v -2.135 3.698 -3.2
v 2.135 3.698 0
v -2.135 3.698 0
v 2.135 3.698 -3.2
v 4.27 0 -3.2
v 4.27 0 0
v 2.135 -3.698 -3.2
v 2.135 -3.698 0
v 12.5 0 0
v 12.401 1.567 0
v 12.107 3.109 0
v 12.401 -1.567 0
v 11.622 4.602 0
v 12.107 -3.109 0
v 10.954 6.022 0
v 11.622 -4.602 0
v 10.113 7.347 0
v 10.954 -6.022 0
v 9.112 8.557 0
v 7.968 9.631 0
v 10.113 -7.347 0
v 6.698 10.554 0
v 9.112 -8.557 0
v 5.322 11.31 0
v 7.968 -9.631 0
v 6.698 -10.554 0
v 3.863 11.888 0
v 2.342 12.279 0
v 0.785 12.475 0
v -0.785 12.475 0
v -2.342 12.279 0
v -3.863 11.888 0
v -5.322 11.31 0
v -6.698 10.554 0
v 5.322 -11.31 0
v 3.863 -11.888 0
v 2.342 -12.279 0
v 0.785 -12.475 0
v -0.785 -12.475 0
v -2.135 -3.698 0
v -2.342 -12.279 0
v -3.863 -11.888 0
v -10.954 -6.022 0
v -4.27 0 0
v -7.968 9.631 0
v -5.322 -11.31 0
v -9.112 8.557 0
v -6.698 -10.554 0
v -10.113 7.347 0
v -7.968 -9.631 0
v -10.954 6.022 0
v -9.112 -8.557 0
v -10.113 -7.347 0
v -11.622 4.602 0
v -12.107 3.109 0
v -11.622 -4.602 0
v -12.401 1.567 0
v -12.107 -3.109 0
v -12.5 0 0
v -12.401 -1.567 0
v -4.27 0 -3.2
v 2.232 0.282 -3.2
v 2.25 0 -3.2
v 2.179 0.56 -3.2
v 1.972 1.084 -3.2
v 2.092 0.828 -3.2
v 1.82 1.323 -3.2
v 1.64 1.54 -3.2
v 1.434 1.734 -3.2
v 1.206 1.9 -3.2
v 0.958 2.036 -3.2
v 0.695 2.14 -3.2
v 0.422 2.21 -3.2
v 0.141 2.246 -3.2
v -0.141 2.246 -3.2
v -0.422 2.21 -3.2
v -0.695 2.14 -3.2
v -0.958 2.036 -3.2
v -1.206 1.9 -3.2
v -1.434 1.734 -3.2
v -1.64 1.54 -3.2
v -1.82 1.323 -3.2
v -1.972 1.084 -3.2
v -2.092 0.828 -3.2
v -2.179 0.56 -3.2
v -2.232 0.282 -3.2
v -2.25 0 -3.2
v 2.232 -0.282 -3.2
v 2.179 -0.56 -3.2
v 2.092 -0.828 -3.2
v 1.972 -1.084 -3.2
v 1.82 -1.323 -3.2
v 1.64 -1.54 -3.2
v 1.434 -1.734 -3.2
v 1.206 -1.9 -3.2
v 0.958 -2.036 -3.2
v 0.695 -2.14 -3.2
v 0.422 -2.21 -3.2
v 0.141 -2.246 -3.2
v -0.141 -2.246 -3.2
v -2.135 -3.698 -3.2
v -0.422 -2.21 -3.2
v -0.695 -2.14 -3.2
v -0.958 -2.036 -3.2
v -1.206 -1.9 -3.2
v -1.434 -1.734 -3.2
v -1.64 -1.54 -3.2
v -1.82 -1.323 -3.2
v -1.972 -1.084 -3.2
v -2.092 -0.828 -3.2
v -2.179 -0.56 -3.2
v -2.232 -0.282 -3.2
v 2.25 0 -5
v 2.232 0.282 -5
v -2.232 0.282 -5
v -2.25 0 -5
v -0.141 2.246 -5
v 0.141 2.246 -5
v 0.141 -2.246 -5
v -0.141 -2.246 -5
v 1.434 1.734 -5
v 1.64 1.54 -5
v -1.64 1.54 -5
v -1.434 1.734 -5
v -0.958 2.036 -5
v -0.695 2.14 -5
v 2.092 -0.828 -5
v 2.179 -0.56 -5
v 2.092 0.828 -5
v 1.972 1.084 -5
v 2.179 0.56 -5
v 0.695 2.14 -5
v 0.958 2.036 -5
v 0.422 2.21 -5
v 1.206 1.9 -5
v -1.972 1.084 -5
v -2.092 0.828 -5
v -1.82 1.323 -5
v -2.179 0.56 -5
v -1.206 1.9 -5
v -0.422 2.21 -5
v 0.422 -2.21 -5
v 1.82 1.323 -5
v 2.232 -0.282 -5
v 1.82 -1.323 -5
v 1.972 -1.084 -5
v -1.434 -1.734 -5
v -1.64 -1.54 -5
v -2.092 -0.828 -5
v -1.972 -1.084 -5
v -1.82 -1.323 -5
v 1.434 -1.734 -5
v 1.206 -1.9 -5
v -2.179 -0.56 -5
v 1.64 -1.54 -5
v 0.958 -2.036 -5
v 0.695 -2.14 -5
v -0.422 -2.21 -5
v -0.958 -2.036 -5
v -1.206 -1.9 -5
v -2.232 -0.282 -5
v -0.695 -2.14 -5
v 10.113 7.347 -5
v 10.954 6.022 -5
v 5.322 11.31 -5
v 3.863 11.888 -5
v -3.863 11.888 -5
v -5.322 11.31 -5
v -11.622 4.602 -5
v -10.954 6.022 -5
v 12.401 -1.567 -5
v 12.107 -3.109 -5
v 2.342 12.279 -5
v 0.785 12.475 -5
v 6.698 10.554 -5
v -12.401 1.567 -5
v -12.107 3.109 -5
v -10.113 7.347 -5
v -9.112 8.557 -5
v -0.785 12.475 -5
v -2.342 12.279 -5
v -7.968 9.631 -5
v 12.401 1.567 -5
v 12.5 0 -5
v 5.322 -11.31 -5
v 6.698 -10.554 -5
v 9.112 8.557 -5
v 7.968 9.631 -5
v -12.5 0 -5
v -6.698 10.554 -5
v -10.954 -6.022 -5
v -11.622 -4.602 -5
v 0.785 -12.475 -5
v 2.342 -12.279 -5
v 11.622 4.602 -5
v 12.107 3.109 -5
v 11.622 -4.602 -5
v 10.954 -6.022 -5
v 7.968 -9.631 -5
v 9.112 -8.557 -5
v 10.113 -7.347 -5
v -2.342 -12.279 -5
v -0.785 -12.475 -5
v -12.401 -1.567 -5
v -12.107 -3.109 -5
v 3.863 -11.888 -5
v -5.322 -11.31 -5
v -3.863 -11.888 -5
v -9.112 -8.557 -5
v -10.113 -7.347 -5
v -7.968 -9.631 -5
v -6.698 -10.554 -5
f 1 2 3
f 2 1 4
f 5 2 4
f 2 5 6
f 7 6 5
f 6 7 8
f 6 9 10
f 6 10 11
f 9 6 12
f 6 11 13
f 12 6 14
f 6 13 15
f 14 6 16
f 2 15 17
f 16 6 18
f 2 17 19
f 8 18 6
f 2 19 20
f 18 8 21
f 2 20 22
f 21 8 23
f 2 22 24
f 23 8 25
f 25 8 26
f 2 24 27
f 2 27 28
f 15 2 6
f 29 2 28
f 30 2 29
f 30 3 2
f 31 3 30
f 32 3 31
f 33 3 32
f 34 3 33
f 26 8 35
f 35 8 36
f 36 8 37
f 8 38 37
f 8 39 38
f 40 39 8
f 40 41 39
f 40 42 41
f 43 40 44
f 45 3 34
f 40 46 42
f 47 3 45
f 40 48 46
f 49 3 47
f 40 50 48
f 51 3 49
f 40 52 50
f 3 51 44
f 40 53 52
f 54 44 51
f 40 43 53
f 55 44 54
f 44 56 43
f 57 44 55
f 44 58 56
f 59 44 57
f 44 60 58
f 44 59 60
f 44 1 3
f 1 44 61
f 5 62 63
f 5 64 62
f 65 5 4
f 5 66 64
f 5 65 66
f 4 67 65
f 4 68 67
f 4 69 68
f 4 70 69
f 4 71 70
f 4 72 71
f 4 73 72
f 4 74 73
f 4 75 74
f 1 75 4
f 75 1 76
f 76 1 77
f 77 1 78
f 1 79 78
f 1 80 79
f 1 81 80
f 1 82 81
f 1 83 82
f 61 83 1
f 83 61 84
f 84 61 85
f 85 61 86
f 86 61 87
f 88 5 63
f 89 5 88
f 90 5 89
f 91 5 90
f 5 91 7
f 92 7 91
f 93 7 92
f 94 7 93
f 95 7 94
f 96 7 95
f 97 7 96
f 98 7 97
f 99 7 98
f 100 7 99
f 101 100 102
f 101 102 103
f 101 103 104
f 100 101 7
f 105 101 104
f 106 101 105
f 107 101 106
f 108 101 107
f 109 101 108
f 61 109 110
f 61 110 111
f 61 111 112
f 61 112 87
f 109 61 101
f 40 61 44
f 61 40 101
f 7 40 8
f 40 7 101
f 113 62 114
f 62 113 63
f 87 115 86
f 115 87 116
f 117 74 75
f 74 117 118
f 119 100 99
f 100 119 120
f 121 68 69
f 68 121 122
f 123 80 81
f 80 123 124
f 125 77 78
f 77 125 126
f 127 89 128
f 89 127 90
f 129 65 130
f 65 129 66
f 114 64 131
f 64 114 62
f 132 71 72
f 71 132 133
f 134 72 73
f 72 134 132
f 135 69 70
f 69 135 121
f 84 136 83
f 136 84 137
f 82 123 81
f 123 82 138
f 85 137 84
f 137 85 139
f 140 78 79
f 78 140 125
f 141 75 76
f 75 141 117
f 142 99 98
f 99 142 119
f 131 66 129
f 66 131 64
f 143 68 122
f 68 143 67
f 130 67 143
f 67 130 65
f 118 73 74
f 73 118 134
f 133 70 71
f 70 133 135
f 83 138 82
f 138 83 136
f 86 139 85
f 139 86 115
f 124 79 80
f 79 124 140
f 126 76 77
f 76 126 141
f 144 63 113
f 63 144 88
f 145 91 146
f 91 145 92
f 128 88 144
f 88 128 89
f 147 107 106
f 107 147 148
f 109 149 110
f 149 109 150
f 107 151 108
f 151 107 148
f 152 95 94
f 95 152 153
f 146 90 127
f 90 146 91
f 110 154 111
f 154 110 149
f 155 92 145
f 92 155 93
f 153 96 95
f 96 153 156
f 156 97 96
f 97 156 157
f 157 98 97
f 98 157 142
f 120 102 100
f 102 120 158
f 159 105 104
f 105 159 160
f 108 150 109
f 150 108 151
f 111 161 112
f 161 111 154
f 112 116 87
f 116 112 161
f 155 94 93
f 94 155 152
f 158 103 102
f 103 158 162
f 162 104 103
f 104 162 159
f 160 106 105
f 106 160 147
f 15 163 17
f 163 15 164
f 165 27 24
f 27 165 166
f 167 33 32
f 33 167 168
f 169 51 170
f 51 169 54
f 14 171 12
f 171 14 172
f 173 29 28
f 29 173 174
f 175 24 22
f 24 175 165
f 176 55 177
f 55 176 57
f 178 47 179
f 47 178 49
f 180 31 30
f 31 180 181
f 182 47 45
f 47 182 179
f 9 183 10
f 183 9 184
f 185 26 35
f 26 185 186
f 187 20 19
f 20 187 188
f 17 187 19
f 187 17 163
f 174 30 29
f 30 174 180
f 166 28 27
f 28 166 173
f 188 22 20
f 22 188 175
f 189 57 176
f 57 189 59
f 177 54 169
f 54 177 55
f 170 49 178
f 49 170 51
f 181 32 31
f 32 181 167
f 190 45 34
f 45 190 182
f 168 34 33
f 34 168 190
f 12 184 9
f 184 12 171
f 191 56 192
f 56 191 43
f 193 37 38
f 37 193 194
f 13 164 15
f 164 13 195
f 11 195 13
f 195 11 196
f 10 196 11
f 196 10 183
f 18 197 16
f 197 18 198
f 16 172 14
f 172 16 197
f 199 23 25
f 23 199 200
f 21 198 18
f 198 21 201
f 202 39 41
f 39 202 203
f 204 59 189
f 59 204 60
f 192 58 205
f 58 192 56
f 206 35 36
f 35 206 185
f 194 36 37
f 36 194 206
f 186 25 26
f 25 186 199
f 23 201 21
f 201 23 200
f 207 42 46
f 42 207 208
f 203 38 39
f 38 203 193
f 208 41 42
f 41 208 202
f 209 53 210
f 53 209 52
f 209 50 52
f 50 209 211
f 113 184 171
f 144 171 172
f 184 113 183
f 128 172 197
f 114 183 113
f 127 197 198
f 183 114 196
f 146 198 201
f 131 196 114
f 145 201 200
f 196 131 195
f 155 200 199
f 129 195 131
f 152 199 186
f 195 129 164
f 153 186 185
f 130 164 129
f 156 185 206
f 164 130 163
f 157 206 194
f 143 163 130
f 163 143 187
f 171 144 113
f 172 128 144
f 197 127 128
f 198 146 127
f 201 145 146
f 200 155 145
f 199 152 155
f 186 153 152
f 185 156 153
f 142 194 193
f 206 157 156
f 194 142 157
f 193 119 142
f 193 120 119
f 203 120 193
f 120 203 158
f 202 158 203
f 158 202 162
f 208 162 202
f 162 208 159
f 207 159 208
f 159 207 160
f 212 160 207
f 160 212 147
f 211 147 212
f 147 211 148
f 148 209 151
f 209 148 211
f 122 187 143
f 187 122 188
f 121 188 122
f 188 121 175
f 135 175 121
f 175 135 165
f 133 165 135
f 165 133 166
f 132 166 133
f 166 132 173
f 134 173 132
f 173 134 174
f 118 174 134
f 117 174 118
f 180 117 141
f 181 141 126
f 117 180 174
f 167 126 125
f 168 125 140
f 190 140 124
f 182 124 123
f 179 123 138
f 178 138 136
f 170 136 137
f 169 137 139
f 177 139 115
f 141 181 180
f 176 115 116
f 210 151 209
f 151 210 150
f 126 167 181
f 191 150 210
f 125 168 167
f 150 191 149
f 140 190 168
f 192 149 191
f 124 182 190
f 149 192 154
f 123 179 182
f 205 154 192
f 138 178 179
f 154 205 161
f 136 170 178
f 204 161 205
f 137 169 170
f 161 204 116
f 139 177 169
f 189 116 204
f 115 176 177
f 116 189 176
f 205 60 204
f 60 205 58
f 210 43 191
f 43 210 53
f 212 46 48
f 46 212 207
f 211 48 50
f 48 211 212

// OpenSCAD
$fn = 50;

difference() {
	union() {
		translate(v = [0, 0, -5.0]) {
			cylinder(h = 5.0, r = 12.5);
		}
	}
	union() {
		translate(v = [0, 0, 0]) {
			rotate(a = [0, 0, 0]) {
				difference() {
					union() {
						translate(v = [0, 0, -3.2]) {
							linear_extrude(height = 3.2) {
								polygon(points = [[4.2698, 0.0], [2.1349000000000005, 3.697755269078796], [-2.134899999999999, 3.6977552690787965], [-4.2698, 5.228996902999369e-16], [-2.134900000000002, -3.6977552690787956], [2.1348999999999974, -3.697755269078798]]);
							}
						}
					}
					union();
				}
			}
		}
		#translate(v = [0, 0, -100.0]) {
			cylinder(h = 200, r = 2.25);
		}
	}
}
